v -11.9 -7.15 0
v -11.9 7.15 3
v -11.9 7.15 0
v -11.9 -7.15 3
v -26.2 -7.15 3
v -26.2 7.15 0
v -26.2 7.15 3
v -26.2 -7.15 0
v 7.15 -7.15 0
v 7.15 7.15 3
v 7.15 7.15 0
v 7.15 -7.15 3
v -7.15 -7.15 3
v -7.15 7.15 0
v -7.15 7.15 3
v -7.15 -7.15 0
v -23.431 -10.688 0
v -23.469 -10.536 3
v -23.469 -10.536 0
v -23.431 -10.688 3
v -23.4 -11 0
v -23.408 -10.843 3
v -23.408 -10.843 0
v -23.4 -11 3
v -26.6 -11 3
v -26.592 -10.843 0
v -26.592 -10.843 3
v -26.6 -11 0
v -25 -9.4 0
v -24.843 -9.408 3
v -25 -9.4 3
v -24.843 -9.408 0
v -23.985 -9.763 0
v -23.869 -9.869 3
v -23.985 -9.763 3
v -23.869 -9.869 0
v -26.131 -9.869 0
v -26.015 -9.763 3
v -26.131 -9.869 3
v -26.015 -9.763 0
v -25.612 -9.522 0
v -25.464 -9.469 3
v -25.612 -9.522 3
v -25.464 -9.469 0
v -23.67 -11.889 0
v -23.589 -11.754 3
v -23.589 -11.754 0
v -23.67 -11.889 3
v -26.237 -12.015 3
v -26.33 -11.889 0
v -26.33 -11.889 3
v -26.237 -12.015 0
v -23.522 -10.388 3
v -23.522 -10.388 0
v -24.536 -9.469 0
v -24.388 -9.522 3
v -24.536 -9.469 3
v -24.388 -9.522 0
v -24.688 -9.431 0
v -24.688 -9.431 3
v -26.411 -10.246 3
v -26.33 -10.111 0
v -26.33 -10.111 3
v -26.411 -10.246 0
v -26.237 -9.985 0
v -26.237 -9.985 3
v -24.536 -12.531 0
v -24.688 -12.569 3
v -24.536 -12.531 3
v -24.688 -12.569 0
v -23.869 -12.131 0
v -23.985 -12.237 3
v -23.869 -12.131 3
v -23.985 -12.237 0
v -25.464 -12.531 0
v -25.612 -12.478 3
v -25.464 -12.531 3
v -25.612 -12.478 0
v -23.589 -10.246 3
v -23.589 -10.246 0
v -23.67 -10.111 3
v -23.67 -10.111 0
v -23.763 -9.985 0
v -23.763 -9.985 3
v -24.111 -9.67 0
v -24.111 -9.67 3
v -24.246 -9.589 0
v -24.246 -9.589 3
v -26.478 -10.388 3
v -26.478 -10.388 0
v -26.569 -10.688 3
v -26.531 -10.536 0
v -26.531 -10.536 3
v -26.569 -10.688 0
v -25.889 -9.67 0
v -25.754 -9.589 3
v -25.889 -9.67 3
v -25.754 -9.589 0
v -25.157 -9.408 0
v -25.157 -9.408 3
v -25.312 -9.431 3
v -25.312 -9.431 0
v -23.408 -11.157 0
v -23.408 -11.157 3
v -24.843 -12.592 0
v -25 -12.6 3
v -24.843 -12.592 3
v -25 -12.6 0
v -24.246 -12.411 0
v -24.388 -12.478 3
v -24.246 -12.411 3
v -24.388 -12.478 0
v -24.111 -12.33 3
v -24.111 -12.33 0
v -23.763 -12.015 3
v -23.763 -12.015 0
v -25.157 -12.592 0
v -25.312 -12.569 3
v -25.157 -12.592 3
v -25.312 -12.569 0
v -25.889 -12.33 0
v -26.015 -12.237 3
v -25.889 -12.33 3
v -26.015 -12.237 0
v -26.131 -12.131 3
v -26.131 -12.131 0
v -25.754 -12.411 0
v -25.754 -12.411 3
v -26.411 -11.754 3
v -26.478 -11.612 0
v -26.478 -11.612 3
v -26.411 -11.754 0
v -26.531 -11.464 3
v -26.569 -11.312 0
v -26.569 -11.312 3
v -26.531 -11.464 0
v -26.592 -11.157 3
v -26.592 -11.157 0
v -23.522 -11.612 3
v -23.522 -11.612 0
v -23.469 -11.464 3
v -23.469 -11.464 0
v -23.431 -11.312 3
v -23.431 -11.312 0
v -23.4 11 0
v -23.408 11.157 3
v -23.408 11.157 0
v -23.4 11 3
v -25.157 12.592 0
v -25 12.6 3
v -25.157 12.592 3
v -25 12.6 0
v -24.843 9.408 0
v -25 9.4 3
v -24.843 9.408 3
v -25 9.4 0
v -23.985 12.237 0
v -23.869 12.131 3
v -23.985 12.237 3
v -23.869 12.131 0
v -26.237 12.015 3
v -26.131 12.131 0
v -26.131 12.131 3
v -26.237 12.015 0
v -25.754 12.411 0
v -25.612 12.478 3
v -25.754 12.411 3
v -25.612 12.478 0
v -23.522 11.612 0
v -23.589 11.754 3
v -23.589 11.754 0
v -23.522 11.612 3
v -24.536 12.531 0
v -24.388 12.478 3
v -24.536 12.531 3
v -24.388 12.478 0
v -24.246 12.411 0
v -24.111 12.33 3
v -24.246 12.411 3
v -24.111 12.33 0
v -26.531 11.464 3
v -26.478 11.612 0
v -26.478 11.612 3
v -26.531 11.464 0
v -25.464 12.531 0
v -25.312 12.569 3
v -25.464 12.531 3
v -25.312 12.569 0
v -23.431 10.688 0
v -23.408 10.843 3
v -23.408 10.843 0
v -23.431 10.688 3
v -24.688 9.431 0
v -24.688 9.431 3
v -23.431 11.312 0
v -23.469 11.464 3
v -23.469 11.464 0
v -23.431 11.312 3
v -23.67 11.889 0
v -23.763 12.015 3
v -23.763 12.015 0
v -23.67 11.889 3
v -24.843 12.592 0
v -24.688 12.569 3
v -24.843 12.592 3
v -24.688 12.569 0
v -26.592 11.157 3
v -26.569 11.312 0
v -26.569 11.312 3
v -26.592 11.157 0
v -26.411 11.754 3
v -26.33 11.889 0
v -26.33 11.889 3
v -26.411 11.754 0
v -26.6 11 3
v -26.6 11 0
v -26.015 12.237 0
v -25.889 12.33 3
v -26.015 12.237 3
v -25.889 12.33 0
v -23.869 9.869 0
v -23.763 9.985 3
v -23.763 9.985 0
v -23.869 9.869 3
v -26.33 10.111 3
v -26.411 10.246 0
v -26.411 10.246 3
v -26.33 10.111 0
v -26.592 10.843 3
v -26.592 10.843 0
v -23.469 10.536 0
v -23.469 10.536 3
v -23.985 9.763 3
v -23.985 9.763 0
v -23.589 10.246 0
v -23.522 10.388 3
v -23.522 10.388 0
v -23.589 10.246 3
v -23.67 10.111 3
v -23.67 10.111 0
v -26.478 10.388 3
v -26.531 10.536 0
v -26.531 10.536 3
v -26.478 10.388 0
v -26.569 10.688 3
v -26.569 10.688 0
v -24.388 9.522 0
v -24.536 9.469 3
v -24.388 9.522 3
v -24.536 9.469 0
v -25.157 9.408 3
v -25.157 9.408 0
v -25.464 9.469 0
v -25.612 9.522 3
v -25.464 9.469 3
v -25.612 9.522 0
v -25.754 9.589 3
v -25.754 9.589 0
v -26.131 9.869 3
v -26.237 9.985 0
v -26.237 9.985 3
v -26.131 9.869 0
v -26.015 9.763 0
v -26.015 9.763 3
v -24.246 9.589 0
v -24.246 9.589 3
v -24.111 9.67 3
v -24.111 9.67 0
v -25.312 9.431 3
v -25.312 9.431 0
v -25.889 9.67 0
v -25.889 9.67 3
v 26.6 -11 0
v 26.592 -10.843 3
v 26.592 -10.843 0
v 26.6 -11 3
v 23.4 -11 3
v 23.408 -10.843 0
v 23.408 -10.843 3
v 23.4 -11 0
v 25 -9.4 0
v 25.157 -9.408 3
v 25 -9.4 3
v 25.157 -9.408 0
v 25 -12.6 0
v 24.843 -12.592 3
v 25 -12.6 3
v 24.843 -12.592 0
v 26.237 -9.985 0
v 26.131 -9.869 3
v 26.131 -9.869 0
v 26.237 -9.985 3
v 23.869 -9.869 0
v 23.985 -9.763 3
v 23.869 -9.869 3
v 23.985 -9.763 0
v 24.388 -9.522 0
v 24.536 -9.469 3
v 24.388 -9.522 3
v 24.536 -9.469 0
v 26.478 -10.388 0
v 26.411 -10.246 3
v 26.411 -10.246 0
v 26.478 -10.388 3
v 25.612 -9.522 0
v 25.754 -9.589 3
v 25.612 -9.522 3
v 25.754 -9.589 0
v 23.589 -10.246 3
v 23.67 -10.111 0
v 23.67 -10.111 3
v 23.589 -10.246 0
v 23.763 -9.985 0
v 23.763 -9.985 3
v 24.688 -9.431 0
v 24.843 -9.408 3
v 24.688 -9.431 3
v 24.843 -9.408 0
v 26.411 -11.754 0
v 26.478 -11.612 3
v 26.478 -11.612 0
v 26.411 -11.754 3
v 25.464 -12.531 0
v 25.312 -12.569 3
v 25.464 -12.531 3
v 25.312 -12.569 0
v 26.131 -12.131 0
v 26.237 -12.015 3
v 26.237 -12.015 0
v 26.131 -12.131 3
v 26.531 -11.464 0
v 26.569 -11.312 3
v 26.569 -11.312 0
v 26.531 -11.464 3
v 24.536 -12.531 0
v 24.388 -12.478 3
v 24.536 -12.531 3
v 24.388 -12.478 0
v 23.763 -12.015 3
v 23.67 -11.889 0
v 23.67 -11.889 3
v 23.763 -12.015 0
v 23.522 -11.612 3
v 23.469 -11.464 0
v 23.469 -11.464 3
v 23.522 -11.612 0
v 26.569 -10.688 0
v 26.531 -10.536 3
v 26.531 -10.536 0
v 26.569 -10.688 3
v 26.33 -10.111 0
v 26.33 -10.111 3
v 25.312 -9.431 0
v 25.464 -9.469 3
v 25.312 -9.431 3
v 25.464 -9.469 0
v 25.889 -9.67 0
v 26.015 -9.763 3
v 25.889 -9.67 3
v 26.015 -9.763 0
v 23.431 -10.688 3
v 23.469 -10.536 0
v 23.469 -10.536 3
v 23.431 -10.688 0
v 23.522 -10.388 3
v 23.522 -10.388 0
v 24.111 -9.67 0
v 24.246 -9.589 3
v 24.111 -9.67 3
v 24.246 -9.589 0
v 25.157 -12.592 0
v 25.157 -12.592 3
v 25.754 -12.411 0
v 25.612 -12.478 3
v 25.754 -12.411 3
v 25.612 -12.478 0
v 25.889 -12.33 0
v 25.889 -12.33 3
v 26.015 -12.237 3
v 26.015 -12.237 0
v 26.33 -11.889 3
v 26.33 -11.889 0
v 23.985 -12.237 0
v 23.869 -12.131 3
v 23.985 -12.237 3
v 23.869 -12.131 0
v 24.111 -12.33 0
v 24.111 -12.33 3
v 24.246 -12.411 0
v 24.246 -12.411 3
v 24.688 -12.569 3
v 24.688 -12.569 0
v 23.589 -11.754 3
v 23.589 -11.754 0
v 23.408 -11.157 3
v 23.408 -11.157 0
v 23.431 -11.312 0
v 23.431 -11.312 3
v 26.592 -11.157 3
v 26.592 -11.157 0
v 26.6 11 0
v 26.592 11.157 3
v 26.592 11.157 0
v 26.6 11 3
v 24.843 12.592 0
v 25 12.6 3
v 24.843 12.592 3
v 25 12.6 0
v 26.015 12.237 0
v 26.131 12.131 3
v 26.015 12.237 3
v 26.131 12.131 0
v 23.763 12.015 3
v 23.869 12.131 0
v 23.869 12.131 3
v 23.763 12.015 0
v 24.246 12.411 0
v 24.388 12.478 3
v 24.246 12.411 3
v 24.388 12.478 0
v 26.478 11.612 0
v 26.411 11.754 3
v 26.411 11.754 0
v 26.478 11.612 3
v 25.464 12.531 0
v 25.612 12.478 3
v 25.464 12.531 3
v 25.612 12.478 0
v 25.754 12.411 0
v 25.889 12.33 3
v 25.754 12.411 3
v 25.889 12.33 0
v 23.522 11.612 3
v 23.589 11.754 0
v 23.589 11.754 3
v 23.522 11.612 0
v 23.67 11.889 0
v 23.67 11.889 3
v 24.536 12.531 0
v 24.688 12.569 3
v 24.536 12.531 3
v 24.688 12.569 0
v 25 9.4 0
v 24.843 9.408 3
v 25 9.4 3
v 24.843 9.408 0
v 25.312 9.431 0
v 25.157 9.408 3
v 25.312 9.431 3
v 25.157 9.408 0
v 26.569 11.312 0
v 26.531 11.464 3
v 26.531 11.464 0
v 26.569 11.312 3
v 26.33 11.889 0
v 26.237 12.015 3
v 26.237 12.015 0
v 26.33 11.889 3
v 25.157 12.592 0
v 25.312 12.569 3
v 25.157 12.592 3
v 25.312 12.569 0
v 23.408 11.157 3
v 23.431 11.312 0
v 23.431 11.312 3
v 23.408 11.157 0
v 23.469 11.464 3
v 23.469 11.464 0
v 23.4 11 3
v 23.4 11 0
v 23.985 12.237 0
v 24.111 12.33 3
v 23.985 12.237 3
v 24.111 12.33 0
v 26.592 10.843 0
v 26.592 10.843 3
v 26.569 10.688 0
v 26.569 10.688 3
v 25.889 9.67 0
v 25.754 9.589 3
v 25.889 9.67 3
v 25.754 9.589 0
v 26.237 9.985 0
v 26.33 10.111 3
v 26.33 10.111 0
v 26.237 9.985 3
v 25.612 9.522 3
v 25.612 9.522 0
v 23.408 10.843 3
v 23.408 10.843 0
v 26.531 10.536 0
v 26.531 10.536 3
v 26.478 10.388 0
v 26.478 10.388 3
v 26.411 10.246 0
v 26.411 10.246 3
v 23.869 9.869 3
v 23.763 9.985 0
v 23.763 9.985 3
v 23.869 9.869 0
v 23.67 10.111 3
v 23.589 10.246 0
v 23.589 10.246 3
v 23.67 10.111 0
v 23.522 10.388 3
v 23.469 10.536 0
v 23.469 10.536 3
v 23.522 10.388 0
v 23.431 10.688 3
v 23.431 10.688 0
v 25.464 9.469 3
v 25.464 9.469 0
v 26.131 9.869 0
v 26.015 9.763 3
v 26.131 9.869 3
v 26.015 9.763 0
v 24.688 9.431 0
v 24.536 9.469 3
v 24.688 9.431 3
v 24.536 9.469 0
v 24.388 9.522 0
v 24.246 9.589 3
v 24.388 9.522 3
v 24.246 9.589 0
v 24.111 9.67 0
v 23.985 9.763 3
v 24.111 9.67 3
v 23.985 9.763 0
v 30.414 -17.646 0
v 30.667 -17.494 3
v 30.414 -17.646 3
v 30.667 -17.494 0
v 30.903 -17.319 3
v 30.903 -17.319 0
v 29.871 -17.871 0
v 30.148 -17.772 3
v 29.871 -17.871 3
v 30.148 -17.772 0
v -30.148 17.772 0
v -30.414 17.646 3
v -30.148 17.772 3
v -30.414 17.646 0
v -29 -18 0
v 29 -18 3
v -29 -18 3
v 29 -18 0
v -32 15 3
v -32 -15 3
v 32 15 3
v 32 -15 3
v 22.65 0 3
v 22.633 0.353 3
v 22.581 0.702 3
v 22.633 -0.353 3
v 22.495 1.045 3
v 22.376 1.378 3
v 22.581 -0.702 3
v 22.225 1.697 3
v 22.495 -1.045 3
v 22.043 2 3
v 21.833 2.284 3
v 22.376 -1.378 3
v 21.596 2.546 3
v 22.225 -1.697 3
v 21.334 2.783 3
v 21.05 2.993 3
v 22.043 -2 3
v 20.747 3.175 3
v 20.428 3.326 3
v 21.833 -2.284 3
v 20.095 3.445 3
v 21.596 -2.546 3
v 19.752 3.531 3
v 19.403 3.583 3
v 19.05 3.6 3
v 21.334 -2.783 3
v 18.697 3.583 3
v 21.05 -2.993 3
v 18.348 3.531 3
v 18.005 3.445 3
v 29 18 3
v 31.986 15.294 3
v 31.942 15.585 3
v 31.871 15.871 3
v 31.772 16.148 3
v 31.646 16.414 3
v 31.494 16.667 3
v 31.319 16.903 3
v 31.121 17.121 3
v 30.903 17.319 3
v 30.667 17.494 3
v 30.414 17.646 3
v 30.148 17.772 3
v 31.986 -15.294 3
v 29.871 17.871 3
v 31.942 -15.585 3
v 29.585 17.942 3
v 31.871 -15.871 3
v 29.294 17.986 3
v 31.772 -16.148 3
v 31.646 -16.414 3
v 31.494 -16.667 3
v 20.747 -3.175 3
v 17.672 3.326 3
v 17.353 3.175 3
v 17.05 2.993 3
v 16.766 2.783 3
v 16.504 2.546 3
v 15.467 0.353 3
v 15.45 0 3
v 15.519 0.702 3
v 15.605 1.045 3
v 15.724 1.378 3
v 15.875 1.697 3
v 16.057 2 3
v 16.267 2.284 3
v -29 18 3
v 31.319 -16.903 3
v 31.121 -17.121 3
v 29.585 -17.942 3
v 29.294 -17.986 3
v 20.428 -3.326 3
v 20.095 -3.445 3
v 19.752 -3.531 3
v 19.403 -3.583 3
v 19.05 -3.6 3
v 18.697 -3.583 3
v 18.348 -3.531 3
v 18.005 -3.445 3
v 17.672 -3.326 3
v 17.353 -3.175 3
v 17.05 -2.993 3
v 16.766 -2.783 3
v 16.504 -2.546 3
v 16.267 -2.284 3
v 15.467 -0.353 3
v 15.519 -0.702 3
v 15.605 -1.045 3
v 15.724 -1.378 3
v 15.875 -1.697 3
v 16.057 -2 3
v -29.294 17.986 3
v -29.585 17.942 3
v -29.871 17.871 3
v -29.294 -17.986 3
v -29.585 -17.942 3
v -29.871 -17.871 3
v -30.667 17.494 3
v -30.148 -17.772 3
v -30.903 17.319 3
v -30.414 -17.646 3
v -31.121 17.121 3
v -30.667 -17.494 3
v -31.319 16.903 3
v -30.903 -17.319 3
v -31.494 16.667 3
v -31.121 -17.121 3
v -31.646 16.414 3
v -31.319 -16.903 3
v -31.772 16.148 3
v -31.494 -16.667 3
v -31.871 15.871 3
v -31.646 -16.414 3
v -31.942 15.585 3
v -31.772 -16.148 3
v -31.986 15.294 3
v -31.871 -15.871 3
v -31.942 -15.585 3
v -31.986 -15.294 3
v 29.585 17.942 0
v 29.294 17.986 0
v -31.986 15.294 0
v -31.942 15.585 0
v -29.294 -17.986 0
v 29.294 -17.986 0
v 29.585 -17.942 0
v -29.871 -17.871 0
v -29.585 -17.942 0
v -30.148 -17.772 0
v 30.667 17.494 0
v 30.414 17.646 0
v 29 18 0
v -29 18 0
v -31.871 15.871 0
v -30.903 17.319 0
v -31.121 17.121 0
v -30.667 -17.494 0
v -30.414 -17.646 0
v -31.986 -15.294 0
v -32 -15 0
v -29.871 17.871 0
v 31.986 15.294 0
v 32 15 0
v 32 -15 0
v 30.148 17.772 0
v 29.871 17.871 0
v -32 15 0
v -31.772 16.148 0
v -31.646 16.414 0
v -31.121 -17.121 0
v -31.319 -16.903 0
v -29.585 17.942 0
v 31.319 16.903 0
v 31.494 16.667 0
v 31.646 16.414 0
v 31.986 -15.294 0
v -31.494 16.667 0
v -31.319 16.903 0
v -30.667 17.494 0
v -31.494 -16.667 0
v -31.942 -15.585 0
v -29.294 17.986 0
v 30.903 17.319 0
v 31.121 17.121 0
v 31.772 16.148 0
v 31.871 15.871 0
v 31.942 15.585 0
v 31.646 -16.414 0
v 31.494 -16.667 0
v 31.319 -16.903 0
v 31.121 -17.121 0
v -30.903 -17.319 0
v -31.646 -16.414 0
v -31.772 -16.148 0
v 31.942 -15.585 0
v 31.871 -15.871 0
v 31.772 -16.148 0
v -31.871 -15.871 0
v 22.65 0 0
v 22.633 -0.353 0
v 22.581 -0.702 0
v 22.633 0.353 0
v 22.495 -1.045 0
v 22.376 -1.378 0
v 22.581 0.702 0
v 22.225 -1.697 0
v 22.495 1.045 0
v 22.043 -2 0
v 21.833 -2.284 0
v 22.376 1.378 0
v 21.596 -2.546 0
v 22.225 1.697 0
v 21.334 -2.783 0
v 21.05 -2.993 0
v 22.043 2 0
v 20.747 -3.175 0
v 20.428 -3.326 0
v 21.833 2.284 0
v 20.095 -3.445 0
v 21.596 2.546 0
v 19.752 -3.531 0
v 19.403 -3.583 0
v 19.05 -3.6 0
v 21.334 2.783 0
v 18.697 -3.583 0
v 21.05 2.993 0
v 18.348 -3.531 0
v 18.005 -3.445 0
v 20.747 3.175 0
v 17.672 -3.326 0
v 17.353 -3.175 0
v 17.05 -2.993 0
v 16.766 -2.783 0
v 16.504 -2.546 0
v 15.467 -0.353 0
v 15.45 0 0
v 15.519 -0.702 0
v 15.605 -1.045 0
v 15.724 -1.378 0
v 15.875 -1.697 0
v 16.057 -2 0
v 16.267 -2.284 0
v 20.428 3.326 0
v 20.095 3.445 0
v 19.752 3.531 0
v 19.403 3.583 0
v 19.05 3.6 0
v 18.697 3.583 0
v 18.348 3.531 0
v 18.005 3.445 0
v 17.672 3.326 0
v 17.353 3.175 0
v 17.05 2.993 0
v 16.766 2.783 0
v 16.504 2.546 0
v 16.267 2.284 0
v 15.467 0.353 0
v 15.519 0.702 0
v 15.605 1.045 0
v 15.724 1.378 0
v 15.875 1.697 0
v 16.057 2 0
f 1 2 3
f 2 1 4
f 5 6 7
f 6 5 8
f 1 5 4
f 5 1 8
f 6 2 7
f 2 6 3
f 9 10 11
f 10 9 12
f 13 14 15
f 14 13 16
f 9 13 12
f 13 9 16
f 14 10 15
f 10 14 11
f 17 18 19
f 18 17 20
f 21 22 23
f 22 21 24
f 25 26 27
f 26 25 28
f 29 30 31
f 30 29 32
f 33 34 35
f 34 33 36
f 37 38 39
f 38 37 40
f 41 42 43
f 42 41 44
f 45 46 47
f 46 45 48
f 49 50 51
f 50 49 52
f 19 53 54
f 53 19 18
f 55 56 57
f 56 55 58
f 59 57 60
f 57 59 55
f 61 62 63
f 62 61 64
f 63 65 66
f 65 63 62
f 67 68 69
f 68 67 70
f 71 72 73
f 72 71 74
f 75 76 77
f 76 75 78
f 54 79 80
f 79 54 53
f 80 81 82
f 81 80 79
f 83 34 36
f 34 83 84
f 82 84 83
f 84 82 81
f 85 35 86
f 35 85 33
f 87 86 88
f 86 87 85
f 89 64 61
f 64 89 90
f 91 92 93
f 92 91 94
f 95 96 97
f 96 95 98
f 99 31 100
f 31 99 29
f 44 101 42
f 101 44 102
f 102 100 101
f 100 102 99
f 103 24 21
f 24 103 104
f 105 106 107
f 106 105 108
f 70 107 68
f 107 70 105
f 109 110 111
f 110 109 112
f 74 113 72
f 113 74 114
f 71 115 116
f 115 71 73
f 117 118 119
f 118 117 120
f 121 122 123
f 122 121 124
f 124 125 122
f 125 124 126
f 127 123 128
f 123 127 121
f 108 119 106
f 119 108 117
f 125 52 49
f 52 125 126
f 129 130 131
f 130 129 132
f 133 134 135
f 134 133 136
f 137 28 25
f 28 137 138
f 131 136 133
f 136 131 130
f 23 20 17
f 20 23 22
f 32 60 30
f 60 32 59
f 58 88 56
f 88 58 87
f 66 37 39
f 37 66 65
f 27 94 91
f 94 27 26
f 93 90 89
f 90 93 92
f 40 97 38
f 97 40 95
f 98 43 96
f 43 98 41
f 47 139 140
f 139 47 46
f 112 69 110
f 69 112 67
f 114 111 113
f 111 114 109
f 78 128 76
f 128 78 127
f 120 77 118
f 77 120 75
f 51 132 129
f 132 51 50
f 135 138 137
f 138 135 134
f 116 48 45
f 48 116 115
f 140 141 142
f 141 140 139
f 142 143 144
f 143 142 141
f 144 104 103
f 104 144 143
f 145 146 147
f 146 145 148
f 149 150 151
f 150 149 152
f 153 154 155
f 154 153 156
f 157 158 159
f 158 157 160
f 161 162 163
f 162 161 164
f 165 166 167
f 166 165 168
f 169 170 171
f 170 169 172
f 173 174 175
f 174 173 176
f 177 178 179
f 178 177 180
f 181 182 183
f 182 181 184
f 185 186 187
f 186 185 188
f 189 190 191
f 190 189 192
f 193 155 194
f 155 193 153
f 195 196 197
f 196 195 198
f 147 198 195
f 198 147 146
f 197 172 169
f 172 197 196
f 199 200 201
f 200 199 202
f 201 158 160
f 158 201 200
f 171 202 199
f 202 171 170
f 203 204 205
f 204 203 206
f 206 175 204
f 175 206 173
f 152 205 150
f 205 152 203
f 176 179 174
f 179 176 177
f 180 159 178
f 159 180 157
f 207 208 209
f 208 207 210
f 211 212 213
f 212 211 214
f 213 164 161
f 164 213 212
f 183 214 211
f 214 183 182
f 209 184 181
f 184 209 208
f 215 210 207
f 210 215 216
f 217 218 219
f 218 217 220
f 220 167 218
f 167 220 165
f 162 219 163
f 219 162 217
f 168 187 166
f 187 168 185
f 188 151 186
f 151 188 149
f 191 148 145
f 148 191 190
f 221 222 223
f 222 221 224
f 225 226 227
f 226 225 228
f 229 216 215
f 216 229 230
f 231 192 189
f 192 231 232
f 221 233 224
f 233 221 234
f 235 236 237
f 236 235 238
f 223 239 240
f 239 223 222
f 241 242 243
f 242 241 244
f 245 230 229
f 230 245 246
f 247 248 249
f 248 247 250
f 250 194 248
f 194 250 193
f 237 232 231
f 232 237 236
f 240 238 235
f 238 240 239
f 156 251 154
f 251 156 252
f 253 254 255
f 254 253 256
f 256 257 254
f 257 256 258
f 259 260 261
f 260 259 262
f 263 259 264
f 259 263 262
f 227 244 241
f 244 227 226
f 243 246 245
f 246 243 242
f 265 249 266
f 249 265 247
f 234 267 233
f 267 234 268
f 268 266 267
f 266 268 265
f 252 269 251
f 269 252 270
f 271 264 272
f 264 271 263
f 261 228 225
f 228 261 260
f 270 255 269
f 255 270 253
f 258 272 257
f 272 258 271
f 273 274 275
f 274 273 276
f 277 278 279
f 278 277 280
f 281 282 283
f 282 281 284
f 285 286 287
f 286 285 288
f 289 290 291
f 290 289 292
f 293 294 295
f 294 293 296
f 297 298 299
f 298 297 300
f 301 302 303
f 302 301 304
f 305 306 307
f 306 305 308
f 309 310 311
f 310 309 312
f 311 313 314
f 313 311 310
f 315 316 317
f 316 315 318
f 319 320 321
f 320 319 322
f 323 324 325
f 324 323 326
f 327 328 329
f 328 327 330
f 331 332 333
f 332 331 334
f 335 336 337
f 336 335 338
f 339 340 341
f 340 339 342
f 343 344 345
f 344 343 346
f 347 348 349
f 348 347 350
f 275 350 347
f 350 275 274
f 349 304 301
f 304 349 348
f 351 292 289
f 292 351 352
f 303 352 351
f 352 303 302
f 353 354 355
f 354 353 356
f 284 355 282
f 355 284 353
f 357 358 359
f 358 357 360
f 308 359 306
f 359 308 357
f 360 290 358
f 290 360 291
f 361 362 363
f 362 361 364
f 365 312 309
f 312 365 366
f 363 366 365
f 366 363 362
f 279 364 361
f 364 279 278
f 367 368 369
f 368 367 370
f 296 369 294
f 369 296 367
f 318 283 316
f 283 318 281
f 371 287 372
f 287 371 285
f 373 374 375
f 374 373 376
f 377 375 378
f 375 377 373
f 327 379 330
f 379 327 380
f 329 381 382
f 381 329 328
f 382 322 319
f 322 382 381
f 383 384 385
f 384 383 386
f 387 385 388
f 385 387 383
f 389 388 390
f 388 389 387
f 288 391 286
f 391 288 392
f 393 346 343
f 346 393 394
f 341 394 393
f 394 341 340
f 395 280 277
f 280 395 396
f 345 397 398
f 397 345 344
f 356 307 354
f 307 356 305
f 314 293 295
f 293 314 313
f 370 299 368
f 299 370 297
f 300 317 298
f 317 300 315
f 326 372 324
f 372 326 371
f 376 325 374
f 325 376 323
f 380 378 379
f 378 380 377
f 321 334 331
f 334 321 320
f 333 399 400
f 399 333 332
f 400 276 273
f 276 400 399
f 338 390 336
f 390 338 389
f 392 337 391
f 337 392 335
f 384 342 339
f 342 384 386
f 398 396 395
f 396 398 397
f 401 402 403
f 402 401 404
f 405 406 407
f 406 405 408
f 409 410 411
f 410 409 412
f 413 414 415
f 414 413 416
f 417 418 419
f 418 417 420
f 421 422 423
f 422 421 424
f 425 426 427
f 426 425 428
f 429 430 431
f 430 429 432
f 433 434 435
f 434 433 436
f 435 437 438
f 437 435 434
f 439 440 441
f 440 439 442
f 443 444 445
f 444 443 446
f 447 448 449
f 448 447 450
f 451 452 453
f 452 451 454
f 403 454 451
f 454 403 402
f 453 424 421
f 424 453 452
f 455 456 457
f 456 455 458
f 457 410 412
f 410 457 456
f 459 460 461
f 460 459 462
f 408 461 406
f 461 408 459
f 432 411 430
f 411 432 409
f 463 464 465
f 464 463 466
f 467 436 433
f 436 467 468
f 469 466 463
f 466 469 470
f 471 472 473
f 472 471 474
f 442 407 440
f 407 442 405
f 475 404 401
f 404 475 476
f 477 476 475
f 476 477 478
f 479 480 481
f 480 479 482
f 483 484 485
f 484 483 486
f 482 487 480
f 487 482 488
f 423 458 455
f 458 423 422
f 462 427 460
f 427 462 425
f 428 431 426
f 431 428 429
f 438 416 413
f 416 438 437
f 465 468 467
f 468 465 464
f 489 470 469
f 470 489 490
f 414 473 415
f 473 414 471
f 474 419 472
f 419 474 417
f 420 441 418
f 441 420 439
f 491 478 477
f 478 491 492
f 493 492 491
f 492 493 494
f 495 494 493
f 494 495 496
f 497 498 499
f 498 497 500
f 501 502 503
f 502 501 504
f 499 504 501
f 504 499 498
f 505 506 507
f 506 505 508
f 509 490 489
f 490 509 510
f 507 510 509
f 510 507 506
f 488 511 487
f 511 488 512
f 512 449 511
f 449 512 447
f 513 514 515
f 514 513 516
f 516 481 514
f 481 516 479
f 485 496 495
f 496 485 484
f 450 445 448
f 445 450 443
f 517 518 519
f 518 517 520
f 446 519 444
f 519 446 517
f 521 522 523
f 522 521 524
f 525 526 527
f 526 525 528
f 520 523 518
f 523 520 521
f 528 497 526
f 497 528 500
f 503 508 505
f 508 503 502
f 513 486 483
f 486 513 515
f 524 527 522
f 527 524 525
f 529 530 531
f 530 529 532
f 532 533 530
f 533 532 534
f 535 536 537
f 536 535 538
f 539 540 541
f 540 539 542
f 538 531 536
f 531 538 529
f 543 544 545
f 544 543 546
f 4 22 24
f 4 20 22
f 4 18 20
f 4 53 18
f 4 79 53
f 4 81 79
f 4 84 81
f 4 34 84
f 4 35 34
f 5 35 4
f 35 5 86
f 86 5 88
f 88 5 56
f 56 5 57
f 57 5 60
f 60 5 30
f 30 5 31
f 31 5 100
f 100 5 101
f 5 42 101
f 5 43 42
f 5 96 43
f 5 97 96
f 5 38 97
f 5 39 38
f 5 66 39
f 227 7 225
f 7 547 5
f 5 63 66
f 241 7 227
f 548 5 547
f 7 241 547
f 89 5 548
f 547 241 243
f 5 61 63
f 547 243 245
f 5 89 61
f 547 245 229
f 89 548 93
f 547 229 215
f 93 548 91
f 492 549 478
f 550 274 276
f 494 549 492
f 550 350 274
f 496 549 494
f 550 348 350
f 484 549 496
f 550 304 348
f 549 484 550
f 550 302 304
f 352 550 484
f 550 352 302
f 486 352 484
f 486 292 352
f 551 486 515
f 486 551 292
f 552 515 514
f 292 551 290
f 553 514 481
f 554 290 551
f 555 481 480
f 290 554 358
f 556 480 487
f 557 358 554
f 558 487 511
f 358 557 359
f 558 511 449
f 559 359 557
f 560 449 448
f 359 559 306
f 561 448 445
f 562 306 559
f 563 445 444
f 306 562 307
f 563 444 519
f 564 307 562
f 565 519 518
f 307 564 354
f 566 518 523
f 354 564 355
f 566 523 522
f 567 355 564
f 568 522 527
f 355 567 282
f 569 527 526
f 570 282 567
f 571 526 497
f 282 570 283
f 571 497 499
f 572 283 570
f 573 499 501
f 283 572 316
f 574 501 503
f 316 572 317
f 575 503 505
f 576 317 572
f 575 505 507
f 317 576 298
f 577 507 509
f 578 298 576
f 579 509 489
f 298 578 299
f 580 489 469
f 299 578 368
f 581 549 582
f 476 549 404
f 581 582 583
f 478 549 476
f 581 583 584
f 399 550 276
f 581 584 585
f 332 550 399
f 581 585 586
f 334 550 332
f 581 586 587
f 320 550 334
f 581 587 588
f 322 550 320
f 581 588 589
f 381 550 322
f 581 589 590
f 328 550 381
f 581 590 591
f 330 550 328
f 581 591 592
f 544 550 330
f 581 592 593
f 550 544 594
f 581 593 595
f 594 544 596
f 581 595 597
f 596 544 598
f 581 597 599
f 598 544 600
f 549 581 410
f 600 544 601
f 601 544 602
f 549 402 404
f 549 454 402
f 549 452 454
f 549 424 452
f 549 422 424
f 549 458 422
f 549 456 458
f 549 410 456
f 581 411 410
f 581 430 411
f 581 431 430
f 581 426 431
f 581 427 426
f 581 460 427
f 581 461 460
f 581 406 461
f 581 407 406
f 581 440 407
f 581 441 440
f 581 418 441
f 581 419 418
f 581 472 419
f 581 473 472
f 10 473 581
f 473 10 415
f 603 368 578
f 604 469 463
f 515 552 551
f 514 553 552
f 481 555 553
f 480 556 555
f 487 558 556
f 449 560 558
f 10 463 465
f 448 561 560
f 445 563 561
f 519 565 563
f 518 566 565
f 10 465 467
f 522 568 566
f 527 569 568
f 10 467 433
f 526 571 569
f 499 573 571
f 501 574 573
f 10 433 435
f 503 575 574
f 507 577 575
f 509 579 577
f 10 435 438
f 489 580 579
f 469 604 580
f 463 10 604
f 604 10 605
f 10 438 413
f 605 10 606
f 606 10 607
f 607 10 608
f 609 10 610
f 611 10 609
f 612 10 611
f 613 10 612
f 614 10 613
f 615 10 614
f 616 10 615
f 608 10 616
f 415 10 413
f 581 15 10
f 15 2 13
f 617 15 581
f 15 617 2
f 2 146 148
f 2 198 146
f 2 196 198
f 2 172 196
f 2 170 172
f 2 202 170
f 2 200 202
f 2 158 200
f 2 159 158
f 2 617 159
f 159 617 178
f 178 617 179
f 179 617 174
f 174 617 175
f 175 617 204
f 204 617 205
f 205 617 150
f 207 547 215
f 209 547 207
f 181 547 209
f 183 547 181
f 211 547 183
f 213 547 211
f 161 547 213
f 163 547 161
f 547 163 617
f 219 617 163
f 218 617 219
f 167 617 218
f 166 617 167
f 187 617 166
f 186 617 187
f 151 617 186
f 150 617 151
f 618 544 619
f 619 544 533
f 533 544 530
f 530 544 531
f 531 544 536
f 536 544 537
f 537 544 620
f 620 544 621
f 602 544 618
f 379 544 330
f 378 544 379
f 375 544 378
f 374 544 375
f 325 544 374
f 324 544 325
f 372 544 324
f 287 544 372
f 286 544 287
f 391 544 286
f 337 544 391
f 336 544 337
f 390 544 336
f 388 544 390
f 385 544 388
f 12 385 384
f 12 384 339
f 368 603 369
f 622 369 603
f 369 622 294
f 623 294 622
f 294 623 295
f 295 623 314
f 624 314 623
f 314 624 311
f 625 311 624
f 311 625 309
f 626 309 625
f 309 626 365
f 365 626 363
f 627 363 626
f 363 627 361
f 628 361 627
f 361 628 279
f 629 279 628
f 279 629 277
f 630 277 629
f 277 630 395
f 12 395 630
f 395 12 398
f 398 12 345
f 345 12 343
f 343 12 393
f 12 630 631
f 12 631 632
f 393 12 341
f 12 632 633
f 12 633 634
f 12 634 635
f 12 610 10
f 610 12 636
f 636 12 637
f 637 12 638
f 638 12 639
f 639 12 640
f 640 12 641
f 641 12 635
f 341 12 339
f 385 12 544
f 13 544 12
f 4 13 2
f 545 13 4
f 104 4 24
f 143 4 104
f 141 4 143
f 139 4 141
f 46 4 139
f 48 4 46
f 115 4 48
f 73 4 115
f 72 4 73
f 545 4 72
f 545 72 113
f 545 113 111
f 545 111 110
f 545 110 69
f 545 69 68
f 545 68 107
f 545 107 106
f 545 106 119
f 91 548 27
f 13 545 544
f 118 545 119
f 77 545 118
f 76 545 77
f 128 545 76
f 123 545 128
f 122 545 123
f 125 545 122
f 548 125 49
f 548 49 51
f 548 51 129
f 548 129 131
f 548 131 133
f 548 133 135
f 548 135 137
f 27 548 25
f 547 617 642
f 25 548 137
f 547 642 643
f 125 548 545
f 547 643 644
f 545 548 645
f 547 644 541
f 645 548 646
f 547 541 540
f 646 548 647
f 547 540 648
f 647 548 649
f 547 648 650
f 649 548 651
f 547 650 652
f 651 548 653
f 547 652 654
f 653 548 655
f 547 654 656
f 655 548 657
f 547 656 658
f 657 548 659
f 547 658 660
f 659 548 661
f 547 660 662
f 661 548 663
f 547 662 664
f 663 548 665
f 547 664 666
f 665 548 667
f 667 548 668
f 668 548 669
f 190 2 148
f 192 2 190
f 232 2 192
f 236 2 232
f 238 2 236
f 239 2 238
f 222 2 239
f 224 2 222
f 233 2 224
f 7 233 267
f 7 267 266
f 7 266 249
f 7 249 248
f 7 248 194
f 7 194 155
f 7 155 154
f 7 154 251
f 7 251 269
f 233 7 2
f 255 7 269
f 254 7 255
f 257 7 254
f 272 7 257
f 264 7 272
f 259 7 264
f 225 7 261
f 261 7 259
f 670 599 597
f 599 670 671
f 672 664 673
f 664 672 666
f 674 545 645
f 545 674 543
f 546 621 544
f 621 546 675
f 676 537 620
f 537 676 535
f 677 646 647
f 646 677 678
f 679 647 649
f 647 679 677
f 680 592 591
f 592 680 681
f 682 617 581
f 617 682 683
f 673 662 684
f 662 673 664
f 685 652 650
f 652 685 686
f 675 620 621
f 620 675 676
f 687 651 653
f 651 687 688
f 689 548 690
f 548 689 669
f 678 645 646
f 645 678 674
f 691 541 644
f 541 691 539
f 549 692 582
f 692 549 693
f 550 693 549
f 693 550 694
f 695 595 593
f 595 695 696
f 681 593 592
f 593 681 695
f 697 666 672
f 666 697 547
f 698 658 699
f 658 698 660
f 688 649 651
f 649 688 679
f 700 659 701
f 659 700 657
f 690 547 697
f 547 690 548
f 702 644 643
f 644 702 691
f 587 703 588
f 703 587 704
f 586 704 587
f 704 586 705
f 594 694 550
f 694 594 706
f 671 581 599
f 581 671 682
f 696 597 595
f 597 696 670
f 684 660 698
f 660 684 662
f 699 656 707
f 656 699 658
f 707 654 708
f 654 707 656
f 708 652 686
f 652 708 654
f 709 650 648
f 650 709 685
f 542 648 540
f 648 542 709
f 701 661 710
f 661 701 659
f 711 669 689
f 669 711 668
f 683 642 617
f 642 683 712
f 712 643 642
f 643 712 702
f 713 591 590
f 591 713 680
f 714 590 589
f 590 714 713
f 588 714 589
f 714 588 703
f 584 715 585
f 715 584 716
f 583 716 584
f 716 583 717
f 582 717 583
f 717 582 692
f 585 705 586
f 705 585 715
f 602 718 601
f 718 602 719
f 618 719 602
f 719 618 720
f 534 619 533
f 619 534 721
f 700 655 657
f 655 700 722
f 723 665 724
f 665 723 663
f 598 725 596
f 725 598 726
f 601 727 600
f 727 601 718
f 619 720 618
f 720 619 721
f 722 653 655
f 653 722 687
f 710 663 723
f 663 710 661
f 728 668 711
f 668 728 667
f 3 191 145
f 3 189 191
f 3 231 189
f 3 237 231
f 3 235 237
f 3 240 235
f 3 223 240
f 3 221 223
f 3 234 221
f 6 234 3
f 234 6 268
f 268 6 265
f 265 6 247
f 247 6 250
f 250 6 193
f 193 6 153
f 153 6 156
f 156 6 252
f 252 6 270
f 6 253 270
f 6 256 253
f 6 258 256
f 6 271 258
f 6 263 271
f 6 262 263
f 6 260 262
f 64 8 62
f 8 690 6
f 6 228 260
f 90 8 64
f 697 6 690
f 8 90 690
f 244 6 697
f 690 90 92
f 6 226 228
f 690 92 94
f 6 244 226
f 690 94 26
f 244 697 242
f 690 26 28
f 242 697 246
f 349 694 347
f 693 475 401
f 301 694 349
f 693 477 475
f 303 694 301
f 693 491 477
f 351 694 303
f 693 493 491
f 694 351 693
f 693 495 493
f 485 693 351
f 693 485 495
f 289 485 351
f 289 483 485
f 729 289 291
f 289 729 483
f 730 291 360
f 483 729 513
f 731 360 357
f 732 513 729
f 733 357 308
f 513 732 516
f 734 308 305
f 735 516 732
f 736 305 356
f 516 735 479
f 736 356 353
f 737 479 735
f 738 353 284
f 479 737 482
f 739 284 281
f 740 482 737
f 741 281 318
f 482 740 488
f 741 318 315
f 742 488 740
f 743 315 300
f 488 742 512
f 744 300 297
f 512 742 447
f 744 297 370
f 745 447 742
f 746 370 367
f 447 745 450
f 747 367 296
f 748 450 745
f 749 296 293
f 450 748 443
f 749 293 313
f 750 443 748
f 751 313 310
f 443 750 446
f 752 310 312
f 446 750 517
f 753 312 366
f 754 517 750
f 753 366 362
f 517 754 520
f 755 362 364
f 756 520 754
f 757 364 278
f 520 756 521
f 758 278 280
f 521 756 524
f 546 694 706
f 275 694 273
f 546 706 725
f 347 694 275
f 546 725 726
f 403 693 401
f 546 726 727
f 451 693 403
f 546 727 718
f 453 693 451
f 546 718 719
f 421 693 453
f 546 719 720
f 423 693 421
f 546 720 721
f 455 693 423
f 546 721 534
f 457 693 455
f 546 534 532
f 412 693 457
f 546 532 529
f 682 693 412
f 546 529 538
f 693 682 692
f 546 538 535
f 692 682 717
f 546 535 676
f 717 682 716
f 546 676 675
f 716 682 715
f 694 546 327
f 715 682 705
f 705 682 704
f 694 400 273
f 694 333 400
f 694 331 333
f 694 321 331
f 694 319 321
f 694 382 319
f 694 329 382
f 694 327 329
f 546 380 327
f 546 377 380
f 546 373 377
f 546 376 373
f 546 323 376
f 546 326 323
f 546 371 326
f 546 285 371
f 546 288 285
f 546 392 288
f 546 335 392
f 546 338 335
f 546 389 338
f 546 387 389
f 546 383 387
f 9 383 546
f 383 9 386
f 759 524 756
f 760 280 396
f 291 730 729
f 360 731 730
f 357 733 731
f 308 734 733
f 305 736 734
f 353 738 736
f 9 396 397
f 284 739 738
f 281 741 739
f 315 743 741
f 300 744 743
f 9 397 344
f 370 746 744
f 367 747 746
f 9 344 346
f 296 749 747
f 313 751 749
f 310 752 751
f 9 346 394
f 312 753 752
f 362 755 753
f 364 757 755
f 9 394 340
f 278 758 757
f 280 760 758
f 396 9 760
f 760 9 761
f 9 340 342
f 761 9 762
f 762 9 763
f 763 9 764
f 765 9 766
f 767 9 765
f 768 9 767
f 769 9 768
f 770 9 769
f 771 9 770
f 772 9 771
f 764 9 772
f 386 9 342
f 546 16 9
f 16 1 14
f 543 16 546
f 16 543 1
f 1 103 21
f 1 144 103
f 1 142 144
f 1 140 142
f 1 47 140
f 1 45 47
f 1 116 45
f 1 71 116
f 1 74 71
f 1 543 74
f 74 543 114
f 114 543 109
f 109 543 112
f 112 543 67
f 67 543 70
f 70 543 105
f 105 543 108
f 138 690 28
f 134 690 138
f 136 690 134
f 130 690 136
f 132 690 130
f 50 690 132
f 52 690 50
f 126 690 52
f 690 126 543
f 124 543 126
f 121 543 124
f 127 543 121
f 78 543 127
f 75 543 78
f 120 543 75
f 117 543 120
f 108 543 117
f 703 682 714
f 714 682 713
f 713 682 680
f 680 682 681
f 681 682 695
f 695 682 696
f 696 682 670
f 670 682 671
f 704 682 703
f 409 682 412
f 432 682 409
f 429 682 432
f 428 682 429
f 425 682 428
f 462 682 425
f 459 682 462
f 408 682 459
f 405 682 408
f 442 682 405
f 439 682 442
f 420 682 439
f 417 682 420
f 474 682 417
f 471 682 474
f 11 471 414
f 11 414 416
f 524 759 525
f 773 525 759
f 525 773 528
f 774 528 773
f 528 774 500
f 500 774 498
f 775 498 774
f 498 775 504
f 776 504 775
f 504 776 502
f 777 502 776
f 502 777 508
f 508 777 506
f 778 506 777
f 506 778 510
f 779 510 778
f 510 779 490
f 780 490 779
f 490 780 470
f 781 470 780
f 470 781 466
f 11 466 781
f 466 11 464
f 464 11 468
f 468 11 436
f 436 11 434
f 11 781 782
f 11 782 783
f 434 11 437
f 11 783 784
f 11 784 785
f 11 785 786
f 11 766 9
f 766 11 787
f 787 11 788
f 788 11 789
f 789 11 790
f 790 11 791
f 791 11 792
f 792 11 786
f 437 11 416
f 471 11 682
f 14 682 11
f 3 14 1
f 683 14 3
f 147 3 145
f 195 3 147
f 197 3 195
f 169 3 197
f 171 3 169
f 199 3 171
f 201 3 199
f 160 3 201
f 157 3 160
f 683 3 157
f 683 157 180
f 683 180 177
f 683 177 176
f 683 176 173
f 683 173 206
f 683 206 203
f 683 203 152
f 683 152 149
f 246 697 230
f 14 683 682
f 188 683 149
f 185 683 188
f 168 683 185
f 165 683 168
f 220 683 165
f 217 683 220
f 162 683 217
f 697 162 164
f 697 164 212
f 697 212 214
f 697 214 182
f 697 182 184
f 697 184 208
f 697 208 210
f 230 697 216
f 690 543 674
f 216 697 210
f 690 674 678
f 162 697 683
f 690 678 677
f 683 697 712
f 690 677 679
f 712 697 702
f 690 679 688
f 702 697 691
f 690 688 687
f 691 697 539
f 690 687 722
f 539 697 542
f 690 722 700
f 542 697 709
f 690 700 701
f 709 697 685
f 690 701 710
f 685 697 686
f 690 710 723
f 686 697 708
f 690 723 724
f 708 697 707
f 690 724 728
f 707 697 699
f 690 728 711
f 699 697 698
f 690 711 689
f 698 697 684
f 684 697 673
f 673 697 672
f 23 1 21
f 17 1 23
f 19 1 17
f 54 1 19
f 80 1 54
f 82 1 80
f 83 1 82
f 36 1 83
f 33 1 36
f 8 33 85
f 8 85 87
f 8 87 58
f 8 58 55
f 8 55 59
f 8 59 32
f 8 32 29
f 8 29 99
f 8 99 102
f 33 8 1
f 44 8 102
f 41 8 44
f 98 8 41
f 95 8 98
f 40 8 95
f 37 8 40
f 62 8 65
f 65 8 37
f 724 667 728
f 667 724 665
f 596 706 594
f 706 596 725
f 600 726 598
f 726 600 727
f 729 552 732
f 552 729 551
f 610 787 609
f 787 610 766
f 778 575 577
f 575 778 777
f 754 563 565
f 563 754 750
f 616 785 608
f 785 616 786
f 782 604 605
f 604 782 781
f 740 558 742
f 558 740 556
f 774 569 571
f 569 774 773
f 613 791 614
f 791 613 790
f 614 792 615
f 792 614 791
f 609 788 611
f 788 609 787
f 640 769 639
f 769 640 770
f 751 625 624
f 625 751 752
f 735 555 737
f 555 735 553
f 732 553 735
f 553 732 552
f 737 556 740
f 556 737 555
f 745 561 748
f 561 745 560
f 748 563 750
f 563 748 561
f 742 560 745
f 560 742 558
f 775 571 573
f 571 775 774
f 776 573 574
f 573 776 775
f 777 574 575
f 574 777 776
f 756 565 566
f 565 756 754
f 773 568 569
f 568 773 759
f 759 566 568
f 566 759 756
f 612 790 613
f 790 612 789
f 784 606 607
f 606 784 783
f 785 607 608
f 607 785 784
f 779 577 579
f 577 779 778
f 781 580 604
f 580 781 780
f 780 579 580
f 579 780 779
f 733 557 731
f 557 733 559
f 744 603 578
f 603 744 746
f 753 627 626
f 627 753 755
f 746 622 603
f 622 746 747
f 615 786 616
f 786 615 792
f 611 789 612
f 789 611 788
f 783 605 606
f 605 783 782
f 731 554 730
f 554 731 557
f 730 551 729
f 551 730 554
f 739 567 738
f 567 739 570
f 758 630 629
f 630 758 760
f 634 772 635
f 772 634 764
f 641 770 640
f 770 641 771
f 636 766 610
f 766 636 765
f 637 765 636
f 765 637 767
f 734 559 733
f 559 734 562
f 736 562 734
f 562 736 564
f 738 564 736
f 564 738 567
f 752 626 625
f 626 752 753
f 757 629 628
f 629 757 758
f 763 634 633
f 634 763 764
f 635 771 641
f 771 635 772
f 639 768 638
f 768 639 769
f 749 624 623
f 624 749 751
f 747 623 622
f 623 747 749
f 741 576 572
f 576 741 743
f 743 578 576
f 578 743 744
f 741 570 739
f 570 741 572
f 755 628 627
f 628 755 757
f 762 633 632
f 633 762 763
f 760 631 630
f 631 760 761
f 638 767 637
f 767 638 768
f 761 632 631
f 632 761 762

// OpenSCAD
/*
  MT-32 Pi prototype control plate
  Two Gateron / MX-style keyswitches + one KY-040 rotary encoder.

  Print flat, with the underside on the build plate.
  Check the fit of the switch and encoder holes against your actual parts;
  small printer/material differences may require adjusting the clearances.
*/

// ---------- User-adjustable parameters ----------
plate_length       = 64;     // X dimension
plate_width        = 36;     // Y dimension
plate_thickness     = 3;
corner_radius       = 3;

switch_spacing      = 19.05; // MX switch centre-to-centre spacing
switch_cutout       = 14.0;  // nominal MX plate opening; tune for your printer
switch_clearance    = 0.15;  // added to each side of switch opening

encoder_hole_dia    = 7.2;   // KY-040 threaded bushing; measure yours
mount_hole_dia      = 3.2;   // M3 clearance
mount_inset_x       = 7;
mount_inset_y       = 7;

// ---------- Derived positions ----------
switch_x1 = -switch_spacing;
switch_x2 = 0;
encoder_x = switch_spacing;

$fn = 64;

module rounded_plate_2d(length, width, radius) {
    offset(r=radius)
        square([length - 2*radius, width - 2*radius], center=true);
}

module plate() {
    difference() {
        linear_extrude(height=plate_thickness)
            rounded_plate_2d(plate_length, plate_width, corner_radius);

        // MX-style switch openings
        for (x = [switch_x1, switch_x2]) {
            translate([x, 0, -0.1])
                linear_extrude(height=plate_thickness + 0.2)
                    square([
                        switch_cutout + 2*switch_clearance,
                        switch_cutout + 2*switch_clearance
                    ], center=true);
        }

        // KY-040 encoder shaft / threaded-bushing opening
        translate([encoder_x, 0, -0.1])
            cylinder(d=encoder_hole_dia, h=plate_thickness + 0.2);

        // Four M3 mounting holes, inset from the plate edges
        for (x = [-plate_length/2 + mount_inset_x,
                   plate_length/2 - mount_inset_x]) {
            for (y = [-plate_width/2 + mount_inset_y,
                       plate_width/2 - mount_inset_y]) {
                translate([x, y, -0.1])
                    cylinder(d=mount_hole_dia, h=plate_thickness + 0.2);
            }
        }
    }
}

plate();
